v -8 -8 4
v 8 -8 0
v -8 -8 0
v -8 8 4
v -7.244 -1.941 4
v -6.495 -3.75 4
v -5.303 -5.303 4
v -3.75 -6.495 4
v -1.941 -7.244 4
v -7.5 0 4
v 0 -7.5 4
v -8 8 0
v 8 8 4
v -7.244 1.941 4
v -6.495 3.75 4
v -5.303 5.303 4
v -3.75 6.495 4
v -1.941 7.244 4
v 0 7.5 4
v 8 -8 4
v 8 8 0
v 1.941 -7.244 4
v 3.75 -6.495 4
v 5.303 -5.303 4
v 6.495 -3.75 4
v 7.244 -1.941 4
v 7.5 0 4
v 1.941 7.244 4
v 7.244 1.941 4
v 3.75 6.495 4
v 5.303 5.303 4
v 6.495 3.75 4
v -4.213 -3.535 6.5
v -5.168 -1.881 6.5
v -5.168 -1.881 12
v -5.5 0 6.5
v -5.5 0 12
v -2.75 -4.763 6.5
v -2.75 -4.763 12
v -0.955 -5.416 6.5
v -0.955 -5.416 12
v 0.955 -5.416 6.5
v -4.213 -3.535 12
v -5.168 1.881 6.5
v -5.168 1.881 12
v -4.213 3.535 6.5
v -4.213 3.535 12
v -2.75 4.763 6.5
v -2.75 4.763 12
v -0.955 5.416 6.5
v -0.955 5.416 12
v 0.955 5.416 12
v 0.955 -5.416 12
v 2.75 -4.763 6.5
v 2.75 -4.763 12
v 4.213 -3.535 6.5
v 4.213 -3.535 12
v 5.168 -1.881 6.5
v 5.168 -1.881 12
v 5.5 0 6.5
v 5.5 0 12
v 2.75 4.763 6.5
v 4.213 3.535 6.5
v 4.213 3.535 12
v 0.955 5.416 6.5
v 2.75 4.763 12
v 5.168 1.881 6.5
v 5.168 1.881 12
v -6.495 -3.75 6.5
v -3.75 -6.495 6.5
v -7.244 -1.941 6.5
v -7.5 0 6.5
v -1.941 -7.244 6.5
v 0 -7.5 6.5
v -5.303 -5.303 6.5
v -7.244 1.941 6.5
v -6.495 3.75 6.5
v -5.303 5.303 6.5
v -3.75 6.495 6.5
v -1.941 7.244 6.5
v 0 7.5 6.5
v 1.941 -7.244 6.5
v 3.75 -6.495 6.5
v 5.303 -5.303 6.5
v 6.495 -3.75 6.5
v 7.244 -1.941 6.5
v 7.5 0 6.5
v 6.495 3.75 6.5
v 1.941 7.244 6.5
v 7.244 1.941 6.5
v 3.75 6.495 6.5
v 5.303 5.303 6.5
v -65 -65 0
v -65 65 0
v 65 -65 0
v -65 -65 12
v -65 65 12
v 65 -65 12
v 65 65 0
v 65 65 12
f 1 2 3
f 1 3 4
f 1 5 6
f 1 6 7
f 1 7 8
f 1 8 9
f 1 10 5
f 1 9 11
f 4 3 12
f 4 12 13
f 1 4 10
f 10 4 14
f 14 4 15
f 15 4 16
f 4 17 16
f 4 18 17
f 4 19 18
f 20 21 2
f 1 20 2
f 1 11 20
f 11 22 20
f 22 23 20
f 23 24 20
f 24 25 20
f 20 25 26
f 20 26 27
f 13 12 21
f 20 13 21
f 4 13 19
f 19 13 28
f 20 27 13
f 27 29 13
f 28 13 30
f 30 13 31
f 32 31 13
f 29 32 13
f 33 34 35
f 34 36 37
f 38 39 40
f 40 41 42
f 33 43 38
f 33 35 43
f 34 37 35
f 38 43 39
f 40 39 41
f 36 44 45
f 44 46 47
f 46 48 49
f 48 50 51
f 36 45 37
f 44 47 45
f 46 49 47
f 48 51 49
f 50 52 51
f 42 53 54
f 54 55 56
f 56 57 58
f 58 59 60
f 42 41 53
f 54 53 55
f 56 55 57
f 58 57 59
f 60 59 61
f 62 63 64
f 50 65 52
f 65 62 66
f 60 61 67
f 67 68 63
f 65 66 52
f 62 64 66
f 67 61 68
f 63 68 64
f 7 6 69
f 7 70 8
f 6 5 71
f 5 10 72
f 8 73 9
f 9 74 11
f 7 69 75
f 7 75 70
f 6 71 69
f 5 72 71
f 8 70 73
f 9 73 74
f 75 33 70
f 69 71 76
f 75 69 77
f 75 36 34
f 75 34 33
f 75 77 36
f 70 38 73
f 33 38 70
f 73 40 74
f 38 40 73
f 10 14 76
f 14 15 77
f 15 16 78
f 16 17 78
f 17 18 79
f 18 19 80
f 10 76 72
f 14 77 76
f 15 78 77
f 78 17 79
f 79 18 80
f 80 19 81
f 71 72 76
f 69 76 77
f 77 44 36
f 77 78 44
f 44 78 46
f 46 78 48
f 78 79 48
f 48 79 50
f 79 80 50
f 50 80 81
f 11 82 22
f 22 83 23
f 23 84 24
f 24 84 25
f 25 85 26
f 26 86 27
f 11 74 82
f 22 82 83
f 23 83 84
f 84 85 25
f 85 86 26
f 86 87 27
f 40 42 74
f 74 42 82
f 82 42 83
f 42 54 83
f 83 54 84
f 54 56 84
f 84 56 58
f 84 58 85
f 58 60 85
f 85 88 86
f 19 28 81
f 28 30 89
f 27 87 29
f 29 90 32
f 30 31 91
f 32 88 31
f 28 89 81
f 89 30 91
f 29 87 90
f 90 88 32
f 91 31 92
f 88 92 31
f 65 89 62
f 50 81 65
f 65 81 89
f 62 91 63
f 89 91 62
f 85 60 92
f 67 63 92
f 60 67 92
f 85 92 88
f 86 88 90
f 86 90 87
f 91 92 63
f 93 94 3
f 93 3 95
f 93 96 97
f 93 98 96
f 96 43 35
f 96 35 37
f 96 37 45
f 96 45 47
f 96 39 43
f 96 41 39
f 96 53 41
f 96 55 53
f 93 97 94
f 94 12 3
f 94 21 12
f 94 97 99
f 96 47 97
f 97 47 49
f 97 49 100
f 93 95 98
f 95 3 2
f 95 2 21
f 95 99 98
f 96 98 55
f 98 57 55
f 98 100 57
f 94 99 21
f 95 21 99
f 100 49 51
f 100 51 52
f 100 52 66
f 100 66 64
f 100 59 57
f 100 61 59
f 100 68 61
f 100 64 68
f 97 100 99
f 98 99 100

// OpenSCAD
difference(){
    translate([0,0,6])
    cube([130,130,12],center=true);
    union(){
        translate([0,0,1.5])
            cube([16,16,5],center=true);
        translate([0,0,3])
            cylinder(h=12,r=5.5);
        translate([0,0,4])
            cylinder(h=2.5,r=7.5);
    }
}
